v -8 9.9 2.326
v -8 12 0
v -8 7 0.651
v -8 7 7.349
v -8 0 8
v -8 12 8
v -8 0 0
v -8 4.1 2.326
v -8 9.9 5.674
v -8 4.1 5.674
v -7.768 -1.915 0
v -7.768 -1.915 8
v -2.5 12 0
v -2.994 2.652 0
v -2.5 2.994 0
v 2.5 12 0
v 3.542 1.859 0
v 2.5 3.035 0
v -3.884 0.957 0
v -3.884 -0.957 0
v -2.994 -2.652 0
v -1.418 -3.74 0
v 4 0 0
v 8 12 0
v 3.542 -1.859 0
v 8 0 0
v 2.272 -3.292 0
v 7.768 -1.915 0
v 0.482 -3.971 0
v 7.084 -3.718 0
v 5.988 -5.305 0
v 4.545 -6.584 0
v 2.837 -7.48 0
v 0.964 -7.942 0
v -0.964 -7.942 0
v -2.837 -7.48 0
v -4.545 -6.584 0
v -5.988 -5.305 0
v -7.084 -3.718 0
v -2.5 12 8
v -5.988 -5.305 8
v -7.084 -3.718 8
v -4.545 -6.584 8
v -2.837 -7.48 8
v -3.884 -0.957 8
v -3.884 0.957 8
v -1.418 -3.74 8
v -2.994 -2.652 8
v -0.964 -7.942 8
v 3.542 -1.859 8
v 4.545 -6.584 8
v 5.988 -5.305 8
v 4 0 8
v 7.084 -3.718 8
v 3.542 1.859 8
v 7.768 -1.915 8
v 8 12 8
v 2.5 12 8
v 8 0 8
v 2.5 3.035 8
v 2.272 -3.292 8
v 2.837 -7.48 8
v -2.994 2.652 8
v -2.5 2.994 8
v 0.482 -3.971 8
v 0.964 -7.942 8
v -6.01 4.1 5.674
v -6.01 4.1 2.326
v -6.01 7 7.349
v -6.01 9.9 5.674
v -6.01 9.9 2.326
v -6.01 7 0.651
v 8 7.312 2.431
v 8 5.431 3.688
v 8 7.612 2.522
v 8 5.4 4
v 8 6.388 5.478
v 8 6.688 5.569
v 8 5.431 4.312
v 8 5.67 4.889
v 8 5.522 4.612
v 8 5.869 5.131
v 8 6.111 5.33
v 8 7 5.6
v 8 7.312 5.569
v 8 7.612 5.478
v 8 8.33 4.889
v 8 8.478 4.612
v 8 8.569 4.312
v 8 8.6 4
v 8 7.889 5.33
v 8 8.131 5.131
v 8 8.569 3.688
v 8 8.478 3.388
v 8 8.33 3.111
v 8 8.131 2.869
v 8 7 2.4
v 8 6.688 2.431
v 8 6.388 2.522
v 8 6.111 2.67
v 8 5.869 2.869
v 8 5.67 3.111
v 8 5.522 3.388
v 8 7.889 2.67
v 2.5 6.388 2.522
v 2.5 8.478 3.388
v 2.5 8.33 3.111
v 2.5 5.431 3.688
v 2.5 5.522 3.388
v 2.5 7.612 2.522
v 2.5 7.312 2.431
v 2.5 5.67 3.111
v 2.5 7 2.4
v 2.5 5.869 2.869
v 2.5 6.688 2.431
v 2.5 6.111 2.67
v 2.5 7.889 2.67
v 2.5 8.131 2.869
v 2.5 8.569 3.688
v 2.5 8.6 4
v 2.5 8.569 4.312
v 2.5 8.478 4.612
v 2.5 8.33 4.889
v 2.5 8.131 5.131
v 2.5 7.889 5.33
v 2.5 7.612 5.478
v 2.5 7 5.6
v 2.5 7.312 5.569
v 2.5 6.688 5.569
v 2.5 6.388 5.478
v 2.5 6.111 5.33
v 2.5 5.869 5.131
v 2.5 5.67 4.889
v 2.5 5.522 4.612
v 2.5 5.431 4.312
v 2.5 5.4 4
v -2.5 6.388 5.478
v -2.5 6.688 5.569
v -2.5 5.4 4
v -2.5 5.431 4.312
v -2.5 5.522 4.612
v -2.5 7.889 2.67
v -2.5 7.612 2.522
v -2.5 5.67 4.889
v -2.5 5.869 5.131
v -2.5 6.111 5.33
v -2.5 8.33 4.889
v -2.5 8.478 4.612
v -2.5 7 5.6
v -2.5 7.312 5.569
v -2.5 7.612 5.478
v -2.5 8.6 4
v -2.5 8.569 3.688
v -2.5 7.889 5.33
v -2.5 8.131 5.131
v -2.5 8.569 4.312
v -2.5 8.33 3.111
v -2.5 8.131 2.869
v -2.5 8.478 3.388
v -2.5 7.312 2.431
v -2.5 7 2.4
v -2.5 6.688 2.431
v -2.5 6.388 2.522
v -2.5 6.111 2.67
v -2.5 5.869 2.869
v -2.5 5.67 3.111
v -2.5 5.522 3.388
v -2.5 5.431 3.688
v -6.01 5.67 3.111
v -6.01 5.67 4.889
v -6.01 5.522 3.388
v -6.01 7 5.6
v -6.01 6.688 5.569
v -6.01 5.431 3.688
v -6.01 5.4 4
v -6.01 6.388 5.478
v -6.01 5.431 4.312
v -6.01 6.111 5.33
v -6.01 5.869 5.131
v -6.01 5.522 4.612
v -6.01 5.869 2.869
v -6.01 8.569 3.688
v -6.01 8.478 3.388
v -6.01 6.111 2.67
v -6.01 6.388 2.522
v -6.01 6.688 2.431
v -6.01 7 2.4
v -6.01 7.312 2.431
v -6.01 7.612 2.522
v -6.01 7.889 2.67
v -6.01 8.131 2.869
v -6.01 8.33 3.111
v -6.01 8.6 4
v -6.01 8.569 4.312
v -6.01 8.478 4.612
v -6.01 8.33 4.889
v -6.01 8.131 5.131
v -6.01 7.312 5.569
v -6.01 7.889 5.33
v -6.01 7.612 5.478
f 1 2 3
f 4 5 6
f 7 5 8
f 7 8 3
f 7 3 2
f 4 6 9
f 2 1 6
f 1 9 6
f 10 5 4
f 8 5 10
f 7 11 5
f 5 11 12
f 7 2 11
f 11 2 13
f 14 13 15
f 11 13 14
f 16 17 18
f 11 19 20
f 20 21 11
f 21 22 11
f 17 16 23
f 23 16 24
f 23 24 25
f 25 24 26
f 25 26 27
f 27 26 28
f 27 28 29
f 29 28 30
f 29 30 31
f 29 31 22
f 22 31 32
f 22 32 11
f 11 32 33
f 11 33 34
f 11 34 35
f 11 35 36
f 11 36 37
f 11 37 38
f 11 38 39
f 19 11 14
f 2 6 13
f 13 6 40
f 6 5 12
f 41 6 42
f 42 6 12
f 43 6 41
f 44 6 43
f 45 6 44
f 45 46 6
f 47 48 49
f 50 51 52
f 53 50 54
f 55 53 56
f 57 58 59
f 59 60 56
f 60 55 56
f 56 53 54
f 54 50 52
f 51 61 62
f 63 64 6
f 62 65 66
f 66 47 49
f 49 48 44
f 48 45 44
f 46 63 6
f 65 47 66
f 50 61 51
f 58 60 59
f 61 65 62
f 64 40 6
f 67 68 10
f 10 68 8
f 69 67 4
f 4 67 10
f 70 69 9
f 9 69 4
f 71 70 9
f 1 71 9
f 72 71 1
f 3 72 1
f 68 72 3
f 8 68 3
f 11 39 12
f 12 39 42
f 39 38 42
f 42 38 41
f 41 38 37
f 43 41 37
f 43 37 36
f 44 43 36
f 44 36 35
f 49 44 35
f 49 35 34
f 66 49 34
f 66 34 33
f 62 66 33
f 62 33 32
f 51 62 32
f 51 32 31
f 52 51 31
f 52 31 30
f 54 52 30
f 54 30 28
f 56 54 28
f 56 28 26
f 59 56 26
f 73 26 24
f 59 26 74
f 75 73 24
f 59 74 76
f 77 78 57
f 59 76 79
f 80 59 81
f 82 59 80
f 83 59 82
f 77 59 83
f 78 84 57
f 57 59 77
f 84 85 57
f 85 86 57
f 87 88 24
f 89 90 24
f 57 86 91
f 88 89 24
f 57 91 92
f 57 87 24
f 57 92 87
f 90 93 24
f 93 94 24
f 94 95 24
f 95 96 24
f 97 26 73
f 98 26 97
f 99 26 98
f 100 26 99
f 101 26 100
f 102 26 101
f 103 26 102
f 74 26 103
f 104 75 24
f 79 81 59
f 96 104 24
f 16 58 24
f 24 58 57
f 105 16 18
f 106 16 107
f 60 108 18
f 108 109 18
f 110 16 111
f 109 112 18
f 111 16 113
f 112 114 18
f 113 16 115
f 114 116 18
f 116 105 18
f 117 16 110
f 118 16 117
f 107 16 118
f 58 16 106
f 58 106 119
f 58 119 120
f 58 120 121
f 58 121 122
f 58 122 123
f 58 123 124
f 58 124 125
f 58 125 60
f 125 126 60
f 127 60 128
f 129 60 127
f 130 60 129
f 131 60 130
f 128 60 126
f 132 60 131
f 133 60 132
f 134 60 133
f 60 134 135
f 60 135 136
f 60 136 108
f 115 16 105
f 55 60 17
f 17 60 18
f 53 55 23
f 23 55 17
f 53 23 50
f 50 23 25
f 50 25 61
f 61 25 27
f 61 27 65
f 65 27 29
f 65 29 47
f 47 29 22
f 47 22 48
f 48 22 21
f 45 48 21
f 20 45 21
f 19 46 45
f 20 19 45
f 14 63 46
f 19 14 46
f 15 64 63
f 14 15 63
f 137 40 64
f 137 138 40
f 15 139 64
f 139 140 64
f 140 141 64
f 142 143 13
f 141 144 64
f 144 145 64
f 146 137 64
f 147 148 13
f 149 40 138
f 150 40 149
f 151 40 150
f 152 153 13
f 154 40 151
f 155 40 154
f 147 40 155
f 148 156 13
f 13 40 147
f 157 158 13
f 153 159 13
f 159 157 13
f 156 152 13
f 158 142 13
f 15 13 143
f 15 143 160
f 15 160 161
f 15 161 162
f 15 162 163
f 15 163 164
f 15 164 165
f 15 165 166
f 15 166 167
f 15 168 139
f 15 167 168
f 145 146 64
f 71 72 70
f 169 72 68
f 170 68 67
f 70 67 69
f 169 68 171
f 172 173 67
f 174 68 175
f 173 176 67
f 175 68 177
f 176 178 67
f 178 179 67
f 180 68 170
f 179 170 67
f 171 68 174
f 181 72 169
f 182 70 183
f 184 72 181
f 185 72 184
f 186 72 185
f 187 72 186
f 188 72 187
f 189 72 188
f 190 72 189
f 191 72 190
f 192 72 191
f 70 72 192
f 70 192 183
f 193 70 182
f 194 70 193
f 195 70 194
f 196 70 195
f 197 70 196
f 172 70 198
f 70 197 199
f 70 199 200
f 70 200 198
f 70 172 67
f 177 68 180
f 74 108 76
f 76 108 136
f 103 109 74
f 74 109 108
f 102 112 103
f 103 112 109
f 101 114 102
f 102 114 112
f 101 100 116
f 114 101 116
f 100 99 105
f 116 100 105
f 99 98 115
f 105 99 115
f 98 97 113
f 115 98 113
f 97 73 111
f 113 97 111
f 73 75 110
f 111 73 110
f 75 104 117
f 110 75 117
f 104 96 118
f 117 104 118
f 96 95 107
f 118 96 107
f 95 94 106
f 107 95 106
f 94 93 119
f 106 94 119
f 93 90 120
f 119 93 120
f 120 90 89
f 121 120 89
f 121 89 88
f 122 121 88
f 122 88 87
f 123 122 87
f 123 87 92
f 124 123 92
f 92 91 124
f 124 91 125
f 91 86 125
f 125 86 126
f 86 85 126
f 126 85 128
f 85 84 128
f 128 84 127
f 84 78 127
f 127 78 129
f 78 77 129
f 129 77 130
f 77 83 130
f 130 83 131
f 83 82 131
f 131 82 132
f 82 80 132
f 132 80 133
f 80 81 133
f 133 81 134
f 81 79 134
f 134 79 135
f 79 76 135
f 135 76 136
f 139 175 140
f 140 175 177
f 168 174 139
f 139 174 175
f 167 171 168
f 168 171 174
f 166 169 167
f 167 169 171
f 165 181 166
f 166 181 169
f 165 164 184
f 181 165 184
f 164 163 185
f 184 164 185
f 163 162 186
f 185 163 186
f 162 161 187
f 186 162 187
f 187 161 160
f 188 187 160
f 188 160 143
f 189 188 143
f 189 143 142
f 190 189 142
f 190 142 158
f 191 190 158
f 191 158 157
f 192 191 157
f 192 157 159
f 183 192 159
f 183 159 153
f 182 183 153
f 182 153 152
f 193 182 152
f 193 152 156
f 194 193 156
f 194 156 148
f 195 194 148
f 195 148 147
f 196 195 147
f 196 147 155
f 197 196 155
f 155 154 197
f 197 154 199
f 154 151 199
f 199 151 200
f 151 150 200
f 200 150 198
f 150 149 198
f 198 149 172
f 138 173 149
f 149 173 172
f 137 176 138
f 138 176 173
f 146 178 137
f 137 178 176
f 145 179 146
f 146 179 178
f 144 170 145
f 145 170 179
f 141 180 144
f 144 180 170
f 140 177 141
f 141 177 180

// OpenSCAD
bore=8;
height=8;
wall=4;
length=12;
hole_dist=7;

difference(){
	union(){
		cylinder(h=height,r=(bore/2)+wall);
		translate([0,length/2,height/2]) cube([bore+2*wall,length,height],center=true);
	}
	cylinder(h=height, r=bore/2);
	translate([0,length/2,height/2]) cube([bore-3,length,height], center=true);
	translate([0,hole_dist,height/2]) rotate([0,90,0]) cylinder(h=bore+2*wall+09.1,r=3.2/2, center=true, $fn=32);
	#translate([-bore/2-wall-0.01,hole_dist,height/2]) rotate([0,90,0]) cylinder(h=2,r=5.8/sqrt(3), $fn=6);
}
